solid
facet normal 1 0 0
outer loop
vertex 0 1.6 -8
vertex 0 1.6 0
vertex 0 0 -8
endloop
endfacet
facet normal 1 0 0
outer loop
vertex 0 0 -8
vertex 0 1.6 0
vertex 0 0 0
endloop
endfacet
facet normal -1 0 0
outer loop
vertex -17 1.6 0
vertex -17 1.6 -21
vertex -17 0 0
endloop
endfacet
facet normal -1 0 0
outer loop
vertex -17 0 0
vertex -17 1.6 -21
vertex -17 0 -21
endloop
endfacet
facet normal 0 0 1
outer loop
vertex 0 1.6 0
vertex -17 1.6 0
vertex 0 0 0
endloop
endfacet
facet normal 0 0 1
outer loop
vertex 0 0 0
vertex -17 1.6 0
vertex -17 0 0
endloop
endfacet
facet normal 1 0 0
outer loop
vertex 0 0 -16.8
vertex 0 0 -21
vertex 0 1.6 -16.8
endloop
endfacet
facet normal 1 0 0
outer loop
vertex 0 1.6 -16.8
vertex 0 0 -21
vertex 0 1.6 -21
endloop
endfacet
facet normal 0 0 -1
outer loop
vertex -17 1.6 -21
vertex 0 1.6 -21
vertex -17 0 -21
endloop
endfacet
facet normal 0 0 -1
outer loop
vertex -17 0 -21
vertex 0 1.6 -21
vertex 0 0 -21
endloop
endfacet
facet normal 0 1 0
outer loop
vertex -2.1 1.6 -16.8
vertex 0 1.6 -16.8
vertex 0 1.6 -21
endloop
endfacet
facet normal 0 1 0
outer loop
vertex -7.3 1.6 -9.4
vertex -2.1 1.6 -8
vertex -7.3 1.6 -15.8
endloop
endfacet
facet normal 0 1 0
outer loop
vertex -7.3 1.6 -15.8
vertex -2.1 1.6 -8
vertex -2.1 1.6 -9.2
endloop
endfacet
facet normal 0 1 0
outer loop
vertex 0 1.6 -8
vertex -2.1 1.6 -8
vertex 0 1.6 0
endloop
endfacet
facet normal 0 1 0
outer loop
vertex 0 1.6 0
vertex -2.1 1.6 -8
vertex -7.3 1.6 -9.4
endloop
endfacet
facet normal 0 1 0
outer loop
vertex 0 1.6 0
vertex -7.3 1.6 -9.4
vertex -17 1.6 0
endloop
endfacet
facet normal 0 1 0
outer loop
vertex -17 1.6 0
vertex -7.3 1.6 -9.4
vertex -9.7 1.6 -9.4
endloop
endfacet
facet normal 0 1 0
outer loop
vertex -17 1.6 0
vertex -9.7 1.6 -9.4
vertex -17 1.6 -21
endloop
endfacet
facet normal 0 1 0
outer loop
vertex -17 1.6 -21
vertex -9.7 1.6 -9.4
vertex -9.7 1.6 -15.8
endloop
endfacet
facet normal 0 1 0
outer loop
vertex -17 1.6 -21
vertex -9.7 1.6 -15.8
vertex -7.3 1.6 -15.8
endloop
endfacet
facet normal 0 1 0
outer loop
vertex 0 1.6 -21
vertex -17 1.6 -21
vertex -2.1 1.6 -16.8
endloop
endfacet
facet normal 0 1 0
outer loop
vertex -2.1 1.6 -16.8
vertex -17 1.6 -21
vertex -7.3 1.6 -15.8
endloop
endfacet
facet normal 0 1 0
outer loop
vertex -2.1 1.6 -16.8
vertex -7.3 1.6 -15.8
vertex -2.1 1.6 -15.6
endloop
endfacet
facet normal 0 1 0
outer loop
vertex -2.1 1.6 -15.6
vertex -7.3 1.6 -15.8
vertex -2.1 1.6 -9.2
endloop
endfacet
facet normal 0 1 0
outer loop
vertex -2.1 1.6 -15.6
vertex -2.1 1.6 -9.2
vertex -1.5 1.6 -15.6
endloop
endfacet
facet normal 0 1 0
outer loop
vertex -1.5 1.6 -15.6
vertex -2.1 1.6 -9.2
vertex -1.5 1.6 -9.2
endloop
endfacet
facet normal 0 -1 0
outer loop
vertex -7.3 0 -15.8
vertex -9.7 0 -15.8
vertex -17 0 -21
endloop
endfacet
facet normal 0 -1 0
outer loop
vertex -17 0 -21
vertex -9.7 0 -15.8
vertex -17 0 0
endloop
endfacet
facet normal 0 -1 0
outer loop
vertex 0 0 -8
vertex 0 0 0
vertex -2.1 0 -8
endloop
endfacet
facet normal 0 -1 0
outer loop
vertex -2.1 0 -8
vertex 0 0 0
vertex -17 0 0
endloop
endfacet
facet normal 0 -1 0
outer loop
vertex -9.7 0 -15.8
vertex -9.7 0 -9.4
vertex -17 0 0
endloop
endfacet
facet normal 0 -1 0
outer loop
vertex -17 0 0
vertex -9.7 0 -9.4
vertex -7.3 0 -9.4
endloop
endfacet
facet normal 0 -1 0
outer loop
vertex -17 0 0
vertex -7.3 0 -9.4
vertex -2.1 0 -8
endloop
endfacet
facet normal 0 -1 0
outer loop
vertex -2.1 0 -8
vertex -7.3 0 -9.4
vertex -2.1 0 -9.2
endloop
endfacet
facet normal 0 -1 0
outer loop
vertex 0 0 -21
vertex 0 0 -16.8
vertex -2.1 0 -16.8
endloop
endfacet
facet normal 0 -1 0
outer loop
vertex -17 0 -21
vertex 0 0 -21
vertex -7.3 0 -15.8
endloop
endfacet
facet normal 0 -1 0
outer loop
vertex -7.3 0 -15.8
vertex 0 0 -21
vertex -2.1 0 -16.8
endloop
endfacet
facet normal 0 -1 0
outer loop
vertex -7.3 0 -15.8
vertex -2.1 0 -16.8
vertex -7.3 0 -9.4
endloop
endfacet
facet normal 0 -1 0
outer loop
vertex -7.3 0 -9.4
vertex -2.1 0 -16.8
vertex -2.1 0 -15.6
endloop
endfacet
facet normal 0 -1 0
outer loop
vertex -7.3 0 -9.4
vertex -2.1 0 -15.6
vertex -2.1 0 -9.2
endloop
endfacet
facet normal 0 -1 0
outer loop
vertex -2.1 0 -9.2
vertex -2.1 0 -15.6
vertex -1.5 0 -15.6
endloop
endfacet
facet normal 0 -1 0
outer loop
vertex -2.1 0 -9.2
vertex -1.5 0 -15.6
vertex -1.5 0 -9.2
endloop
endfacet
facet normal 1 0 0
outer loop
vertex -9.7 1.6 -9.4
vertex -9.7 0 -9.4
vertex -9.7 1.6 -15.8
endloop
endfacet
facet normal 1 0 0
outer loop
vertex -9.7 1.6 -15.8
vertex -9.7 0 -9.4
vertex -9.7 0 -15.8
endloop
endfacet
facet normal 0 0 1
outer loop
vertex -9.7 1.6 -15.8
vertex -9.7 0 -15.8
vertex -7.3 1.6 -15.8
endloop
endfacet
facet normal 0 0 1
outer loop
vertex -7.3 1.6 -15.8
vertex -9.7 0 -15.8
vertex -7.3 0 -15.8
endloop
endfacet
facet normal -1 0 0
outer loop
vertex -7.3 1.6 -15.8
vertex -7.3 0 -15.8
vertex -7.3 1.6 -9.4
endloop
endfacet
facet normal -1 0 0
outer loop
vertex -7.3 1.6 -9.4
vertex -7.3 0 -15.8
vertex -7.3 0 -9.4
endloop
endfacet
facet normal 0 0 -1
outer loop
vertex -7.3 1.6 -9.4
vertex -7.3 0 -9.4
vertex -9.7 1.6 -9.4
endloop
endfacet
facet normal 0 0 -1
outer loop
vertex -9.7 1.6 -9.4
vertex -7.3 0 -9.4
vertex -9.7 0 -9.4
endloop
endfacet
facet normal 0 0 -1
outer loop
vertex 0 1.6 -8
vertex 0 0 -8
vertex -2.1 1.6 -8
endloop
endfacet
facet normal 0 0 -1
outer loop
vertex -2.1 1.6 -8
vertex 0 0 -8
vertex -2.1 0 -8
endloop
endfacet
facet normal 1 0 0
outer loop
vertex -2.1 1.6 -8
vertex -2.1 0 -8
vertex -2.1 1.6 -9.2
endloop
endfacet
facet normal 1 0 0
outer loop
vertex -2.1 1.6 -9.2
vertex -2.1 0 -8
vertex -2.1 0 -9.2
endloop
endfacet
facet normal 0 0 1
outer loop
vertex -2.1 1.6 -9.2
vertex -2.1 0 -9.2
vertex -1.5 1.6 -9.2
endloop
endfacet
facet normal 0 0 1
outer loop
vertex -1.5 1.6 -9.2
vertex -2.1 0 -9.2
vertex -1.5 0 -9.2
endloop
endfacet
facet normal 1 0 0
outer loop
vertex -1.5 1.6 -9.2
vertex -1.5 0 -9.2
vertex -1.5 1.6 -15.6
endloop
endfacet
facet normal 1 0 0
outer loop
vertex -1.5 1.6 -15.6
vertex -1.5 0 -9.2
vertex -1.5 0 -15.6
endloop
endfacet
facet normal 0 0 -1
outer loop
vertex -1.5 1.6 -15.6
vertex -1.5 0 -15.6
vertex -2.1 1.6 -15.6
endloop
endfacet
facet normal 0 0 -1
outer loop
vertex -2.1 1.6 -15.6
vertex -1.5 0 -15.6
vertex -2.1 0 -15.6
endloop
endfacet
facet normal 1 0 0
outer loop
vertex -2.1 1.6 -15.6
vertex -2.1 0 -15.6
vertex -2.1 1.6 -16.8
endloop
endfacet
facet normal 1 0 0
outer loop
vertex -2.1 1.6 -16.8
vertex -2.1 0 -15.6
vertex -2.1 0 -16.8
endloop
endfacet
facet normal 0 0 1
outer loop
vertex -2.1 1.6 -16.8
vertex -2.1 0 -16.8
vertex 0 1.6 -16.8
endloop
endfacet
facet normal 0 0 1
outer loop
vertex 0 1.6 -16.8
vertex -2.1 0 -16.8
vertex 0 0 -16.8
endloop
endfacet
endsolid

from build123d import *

# Parameters (mm, degrees)
SKETCH_1_W          = 17
SKETCH_1_H          = 21
EXTRUDE_1_DEPTH     = 1.6
SKETCH_2_W          = 2.4
SKETCH_2_H          = 6.4
CUT_EXTRUDE_1_DEPTH = 10
CUT_EXTRUDE_2_DEPTH = 10


with BuildPart() as part:
    # 草图1 → 凸台-拉伸1 (new body)
    with BuildSketch(Plane(origin=(0, 0, 0), x_dir=(1, 0, 0), z_dir=(0, 1, 0))):
        with Locations((-8.5, 10.5)):
            Rectangle(SKETCH_1_W, SKETCH_1_H)
    extrude(amount=EXTRUDE_1_DEPTH)

    # 草图2 → 切除-拉伸1 (cut)
    with BuildSketch(Plane(origin=(0, 1.6, 0), x_dir=(1, 0, 0), z_dir=(0, 1, 0))):
        with Locations((-8.5, 12.6)):
            Rectangle(SKETCH_2_W, SKETCH_2_H)
    extrude(amount=-CUT_EXTRUDE_1_DEPTH, mode=Mode.SUBTRACT)

    # 草图3 → 切除-拉伸2 (cut)
    with BuildSketch(Plane(origin=(0, 1.6, 0), x_dir=(1, 0, 0), z_dir=(0, 1, 0))):
        Polygon((0, 16.8), (-1.5, 16.8), (-2.1, 16.8), (-2.1, 15.6), (-1.5, 15.6), (-1.5, 9.2), (-2.1, 9.2), (-2.1, 8), (-1.5, 8), (0, 8), align=None)
    extrude(amount=-CUT_EXTRUDE_2_DEPTH, mode=Mode.SUBTRACT)


solid = part.part
